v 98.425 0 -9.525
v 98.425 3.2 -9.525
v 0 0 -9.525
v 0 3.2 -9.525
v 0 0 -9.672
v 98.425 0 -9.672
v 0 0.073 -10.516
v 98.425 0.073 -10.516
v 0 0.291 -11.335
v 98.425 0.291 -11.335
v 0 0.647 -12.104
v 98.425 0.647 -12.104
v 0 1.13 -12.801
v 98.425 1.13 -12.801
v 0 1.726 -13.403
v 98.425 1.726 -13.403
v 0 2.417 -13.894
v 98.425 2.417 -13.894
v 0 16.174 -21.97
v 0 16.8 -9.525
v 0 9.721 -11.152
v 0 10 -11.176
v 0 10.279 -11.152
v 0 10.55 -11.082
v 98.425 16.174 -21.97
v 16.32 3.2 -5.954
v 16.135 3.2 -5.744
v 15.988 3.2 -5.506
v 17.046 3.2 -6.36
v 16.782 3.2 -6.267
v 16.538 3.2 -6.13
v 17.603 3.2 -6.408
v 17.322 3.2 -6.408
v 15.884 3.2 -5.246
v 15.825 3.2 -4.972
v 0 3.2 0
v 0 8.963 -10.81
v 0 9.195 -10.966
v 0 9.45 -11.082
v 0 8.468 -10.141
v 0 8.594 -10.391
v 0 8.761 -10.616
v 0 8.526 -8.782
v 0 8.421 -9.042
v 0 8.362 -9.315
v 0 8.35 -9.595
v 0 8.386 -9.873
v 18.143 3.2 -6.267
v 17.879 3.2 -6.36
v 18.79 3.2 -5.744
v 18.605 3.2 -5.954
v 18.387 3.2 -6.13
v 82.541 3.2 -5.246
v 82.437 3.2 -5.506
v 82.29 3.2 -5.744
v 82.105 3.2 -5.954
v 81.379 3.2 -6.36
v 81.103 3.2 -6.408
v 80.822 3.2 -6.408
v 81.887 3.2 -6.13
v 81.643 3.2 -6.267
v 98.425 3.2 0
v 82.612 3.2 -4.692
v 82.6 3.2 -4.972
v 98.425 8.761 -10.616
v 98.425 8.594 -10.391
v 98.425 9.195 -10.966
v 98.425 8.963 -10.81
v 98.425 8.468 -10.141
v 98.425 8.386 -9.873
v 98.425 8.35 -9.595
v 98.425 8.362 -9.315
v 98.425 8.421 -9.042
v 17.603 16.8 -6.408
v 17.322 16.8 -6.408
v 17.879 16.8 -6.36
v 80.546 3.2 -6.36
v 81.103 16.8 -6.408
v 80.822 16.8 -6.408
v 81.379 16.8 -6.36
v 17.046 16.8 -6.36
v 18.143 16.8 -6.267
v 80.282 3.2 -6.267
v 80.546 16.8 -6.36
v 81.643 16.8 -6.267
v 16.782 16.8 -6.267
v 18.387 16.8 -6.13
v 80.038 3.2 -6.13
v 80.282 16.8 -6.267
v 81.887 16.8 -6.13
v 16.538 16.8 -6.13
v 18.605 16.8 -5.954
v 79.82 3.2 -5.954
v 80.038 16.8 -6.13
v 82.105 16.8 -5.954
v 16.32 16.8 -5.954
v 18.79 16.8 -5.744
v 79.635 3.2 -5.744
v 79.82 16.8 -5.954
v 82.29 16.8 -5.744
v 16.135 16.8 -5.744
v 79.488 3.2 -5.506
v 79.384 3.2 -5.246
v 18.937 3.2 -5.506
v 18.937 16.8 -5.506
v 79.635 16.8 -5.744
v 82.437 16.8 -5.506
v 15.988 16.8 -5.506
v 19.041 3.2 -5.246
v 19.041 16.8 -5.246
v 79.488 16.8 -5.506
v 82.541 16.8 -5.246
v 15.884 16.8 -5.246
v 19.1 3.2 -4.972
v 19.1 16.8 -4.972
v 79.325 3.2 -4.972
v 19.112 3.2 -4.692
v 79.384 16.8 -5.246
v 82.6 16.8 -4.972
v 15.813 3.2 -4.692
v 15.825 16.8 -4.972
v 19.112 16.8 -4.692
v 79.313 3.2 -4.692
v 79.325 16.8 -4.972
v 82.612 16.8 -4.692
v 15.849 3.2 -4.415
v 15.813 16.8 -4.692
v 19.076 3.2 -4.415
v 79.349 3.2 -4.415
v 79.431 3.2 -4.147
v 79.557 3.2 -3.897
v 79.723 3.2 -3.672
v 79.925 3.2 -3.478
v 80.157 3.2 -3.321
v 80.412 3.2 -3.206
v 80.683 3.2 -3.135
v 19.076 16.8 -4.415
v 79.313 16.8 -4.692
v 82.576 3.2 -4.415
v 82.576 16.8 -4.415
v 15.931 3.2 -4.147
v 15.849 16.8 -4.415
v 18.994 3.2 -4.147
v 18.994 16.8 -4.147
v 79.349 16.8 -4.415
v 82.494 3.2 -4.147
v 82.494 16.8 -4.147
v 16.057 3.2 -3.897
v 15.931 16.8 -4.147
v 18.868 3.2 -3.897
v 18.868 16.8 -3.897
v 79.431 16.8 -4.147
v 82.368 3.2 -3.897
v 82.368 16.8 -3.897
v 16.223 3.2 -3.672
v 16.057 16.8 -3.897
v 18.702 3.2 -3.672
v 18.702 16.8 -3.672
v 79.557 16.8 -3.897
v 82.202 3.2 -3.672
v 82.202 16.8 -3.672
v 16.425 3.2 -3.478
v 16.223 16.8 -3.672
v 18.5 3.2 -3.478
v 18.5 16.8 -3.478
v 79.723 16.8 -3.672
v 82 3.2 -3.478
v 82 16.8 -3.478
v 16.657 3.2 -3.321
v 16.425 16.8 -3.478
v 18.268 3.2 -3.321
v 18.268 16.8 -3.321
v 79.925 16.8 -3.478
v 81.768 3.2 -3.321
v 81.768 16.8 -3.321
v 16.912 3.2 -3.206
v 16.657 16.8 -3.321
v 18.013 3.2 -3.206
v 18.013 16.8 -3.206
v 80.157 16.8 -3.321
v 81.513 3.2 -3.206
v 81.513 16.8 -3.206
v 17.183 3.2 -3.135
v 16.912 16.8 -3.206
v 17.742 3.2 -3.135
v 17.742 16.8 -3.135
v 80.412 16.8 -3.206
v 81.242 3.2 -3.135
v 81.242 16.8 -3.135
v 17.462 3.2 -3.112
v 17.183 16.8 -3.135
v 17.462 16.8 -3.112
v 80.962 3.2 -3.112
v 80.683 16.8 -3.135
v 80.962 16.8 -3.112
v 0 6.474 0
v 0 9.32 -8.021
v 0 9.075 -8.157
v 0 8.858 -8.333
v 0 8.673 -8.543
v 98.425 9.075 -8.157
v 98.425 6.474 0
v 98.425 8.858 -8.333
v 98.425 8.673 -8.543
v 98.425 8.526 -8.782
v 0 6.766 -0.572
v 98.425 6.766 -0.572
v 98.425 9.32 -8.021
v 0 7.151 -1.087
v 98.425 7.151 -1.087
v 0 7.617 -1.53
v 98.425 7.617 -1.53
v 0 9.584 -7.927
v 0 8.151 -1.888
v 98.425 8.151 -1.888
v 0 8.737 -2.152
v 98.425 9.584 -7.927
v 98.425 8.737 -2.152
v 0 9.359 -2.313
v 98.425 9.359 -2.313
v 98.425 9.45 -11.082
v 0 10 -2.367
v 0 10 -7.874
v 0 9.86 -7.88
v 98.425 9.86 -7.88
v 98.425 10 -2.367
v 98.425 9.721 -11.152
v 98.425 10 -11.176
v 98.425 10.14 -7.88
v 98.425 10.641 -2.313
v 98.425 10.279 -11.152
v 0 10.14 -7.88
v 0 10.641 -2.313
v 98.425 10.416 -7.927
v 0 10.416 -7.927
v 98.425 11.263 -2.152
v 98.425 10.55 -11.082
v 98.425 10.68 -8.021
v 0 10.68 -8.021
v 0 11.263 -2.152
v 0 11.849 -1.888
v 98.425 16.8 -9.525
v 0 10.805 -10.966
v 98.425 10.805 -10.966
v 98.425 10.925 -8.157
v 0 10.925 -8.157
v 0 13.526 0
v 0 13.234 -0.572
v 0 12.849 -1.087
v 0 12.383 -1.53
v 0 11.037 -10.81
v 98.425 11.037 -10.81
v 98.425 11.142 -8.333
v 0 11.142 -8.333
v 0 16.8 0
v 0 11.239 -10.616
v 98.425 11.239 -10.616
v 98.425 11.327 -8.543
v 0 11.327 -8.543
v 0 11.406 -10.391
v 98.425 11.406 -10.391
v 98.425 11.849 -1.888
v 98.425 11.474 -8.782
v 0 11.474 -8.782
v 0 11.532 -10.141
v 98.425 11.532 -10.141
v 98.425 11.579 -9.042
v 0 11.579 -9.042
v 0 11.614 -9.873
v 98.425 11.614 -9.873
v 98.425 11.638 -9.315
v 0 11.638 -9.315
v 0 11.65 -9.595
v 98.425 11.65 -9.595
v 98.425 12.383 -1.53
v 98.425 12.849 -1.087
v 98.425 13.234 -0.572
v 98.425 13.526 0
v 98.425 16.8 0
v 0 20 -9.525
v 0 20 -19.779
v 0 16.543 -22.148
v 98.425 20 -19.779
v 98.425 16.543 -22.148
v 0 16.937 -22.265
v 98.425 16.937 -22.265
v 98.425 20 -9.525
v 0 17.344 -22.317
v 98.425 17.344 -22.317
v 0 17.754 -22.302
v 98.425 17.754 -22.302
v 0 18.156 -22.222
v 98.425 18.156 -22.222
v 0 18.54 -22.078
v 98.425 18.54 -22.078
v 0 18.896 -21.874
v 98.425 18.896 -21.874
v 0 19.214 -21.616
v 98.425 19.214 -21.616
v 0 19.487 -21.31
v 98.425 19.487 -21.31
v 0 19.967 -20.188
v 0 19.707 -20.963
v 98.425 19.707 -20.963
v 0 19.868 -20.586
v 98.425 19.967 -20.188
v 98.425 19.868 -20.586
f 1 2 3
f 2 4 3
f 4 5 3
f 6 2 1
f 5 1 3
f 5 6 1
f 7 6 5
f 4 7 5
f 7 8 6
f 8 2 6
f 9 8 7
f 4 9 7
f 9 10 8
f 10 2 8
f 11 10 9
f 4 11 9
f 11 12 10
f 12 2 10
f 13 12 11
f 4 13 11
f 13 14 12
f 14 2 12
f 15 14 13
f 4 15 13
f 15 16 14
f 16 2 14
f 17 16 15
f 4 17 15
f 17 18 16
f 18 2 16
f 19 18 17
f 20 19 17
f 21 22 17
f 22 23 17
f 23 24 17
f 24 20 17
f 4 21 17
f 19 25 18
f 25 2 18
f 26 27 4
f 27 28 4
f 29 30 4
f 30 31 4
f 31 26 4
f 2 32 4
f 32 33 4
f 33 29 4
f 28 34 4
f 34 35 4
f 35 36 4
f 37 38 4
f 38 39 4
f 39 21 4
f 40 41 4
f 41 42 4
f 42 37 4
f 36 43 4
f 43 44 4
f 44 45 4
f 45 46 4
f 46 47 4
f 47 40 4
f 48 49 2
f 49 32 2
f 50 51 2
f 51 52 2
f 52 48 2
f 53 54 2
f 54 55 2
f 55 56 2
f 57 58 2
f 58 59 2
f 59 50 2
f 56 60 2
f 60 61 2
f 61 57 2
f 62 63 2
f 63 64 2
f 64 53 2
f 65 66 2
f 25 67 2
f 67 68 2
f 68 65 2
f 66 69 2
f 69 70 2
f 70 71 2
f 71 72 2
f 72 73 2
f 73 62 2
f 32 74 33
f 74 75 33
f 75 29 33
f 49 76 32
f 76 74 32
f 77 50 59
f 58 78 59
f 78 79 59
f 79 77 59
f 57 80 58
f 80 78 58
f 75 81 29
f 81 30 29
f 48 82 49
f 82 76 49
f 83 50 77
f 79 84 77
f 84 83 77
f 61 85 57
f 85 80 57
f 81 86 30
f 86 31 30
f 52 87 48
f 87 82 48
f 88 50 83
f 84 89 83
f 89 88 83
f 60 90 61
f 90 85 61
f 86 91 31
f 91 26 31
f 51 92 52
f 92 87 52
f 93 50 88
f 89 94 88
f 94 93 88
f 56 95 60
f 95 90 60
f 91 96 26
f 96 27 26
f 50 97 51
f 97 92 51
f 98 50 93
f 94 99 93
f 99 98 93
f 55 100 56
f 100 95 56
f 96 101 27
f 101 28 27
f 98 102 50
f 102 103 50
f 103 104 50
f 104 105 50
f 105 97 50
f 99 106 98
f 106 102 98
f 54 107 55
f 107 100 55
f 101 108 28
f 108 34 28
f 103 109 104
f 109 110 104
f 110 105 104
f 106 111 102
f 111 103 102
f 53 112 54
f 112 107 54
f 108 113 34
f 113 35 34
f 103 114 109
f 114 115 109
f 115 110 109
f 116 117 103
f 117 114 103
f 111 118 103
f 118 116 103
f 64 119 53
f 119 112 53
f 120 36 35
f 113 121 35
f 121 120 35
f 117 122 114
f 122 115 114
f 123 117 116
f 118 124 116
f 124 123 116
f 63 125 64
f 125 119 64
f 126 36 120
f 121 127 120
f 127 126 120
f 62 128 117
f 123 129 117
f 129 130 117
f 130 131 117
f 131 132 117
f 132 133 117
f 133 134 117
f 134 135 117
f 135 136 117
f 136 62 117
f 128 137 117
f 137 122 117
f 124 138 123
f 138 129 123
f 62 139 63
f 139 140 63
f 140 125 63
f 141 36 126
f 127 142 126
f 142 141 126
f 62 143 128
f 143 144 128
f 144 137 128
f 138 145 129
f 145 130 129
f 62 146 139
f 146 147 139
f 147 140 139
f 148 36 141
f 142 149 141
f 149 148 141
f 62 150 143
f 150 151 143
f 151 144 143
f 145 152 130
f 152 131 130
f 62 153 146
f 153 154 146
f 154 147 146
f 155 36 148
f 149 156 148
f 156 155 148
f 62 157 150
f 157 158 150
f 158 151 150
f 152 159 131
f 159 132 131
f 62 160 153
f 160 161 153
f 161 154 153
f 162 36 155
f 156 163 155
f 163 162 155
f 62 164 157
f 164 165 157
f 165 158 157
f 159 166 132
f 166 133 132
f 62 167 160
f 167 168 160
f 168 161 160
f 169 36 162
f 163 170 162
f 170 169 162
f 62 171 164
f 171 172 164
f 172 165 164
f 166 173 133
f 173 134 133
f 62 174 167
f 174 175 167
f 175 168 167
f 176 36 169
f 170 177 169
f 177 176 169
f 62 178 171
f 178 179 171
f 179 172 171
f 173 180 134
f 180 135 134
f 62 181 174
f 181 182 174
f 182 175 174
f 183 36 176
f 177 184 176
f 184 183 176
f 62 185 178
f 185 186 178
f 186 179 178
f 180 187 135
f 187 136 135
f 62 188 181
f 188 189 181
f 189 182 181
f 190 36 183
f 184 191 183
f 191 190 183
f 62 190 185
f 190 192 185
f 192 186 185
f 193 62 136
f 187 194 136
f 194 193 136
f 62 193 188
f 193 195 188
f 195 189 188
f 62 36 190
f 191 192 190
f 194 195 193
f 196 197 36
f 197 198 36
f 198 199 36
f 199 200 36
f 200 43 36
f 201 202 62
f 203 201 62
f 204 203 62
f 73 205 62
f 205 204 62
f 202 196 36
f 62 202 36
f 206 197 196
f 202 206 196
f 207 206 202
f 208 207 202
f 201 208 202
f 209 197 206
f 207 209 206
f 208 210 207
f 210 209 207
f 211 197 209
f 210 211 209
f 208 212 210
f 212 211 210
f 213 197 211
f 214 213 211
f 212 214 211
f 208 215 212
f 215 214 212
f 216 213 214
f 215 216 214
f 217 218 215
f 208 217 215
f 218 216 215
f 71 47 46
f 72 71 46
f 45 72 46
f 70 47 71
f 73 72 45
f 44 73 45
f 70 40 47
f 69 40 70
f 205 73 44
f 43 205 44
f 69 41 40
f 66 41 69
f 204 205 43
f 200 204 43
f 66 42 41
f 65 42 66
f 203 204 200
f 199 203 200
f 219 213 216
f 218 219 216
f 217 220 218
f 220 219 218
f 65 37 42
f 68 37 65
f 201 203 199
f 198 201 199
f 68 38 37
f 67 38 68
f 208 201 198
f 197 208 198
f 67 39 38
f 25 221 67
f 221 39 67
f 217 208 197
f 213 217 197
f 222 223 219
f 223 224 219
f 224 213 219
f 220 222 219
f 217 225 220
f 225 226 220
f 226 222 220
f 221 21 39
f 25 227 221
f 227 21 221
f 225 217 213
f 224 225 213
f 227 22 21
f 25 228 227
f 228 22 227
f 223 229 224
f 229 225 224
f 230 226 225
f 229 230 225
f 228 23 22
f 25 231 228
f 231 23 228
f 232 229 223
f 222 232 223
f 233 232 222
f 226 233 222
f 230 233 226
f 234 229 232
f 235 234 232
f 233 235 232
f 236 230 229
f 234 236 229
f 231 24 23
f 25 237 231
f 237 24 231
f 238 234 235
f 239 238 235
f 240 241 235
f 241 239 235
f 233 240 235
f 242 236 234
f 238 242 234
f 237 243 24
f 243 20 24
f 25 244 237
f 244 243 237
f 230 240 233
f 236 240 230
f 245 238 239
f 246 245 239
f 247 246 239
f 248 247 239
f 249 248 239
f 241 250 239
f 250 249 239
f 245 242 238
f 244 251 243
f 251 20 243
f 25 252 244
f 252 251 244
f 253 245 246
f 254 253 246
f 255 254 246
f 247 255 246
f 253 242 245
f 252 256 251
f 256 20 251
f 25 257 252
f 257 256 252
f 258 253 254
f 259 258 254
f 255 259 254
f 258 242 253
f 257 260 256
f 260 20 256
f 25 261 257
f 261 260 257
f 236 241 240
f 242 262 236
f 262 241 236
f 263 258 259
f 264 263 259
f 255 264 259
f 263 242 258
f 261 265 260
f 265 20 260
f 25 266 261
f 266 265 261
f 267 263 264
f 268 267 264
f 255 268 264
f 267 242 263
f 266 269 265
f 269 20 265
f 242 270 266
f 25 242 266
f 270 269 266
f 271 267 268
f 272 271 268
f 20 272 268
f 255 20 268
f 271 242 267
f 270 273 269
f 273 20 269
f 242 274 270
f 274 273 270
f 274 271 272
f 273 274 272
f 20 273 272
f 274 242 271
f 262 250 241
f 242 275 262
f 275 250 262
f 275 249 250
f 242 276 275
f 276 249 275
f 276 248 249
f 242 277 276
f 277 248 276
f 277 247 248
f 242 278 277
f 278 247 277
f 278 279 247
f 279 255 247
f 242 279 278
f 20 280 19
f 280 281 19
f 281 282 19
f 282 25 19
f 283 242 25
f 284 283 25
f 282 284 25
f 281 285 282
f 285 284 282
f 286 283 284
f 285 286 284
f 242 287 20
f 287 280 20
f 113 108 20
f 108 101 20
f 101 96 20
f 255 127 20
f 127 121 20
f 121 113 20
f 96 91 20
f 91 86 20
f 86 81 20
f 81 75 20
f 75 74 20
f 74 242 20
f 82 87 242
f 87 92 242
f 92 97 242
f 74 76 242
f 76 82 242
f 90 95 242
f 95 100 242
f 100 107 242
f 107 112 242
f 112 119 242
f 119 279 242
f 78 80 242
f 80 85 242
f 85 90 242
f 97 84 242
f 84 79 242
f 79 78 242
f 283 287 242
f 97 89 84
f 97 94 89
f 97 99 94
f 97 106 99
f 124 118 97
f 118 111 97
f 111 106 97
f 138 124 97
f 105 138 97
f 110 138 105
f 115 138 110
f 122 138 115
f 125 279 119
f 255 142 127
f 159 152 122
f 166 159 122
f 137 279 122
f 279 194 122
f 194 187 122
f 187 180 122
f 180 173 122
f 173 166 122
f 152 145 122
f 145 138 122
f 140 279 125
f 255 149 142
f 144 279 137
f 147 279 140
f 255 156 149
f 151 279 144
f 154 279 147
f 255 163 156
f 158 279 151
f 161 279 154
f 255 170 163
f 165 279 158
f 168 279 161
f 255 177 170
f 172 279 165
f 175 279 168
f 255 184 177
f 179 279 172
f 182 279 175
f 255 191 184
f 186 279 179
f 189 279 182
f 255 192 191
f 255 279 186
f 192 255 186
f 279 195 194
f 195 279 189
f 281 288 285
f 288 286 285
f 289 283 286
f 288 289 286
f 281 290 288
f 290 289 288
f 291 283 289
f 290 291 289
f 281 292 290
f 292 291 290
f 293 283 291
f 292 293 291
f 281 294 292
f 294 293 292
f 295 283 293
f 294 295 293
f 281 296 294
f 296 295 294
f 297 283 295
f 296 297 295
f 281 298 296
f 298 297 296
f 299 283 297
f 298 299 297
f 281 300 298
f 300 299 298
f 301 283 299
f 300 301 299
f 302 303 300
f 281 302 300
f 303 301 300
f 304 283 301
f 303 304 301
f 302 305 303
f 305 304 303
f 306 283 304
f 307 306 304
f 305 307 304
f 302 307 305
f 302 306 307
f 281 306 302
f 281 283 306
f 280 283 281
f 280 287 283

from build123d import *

# Parameters (mm, degrees)
BOSS_EXTRUDE1_DEPTH = 98.425
CUT_EXTRUDE2_DEPTH  = 98.425
SKETCH5_R           = 1.651
CUT_EXTRUDE3_DEPTH  = 13.5992
FILLET1_R           = 2.54
SKETCH6_R           = 1.651
CUT_EXTRUDE4_DEPTH  = 98.425


with BuildPart() as part:
    # Sketch1 → Boss-Extrude1 (new body)
    with BuildSketch(Plane(origin=(0, 0, 0), x_dir=(0, 0, -1), z_dir=(1, 0, 0))):
        with BuildLine():
            Line((0, 16.7996), (0, 3.2004))
            Line((0, 3.2004), (9.525, 3.2004))
            Line((9.525, 3.2004), (9.525, 0))
            Line((9.525, 0), (9.672001208, 0))
            ThreePointArc((9.672001208, 0), (12.1043061, 0.647018058), (13.89365381, 2.417039025))
            Line((13.89365381, 2.417039025), (24.215623453, 20))
            Line((24.215623453, 20), (9.525, 20))
            Line((9.525, 20), (9.525, 16.7996))
            Line((9.525, 16.7996), (0, 16.7996))
        make_face()
    extrude(amount=BOSS_EXTRUDE1_DEPTH)

    # Sketch4 → Cut-Extrude2 (cut)
    with BuildSketch(Plane.ZY):
        with BuildLine():
            Line((0, 13.526281186), (0, 6.473718814))
            ThreePointArc((0, 6.473718814), (-2.36728, 10), (0, 13.526281186))
        make_face()
    extrude(amount=-CUT_EXTRUDE2_DEPTH, mode=Mode.SUBTRACT)

    # Sketch5 → Cut-Extrude3 (cut)
    with BuildSketch(Plane(origin=(0, 16.7996, 0), x_dir=(1, 0, 0), z_dir=(0, 1, 0))):
        with Locations((17.4625, 4.7625)):
            Circle(SKETCH5_R)
        with Locations((80.9625, 4.7625)):
            Circle(SKETCH5_R)
    extrude(amount=-CUT_EXTRUDE3_DEPTH, mode=Mode.SUBTRACT)

    # Fillet1
    fillet1_edges = [part.edges().sort_by_distance(p)[0] for p in [
        (49.2125, 20, -24.215623453),
    ]]
    fillet(fillet1_edges, radius=FILLET1_R)

    # Sketch6 → Cut-Extrude4 (cut)
    with BuildSketch(Plane(origin=(98.425, 0, 0), x_dir=(0, 0, -1), z_dir=(1, 0, 0))):
        with Locations((9.525, 10)):
            Circle(SKETCH6_R)
    extrude(amount=-CUT_EXTRUDE4_DEPTH, mode=Mode.SUBTRACT)


solid = part.part
